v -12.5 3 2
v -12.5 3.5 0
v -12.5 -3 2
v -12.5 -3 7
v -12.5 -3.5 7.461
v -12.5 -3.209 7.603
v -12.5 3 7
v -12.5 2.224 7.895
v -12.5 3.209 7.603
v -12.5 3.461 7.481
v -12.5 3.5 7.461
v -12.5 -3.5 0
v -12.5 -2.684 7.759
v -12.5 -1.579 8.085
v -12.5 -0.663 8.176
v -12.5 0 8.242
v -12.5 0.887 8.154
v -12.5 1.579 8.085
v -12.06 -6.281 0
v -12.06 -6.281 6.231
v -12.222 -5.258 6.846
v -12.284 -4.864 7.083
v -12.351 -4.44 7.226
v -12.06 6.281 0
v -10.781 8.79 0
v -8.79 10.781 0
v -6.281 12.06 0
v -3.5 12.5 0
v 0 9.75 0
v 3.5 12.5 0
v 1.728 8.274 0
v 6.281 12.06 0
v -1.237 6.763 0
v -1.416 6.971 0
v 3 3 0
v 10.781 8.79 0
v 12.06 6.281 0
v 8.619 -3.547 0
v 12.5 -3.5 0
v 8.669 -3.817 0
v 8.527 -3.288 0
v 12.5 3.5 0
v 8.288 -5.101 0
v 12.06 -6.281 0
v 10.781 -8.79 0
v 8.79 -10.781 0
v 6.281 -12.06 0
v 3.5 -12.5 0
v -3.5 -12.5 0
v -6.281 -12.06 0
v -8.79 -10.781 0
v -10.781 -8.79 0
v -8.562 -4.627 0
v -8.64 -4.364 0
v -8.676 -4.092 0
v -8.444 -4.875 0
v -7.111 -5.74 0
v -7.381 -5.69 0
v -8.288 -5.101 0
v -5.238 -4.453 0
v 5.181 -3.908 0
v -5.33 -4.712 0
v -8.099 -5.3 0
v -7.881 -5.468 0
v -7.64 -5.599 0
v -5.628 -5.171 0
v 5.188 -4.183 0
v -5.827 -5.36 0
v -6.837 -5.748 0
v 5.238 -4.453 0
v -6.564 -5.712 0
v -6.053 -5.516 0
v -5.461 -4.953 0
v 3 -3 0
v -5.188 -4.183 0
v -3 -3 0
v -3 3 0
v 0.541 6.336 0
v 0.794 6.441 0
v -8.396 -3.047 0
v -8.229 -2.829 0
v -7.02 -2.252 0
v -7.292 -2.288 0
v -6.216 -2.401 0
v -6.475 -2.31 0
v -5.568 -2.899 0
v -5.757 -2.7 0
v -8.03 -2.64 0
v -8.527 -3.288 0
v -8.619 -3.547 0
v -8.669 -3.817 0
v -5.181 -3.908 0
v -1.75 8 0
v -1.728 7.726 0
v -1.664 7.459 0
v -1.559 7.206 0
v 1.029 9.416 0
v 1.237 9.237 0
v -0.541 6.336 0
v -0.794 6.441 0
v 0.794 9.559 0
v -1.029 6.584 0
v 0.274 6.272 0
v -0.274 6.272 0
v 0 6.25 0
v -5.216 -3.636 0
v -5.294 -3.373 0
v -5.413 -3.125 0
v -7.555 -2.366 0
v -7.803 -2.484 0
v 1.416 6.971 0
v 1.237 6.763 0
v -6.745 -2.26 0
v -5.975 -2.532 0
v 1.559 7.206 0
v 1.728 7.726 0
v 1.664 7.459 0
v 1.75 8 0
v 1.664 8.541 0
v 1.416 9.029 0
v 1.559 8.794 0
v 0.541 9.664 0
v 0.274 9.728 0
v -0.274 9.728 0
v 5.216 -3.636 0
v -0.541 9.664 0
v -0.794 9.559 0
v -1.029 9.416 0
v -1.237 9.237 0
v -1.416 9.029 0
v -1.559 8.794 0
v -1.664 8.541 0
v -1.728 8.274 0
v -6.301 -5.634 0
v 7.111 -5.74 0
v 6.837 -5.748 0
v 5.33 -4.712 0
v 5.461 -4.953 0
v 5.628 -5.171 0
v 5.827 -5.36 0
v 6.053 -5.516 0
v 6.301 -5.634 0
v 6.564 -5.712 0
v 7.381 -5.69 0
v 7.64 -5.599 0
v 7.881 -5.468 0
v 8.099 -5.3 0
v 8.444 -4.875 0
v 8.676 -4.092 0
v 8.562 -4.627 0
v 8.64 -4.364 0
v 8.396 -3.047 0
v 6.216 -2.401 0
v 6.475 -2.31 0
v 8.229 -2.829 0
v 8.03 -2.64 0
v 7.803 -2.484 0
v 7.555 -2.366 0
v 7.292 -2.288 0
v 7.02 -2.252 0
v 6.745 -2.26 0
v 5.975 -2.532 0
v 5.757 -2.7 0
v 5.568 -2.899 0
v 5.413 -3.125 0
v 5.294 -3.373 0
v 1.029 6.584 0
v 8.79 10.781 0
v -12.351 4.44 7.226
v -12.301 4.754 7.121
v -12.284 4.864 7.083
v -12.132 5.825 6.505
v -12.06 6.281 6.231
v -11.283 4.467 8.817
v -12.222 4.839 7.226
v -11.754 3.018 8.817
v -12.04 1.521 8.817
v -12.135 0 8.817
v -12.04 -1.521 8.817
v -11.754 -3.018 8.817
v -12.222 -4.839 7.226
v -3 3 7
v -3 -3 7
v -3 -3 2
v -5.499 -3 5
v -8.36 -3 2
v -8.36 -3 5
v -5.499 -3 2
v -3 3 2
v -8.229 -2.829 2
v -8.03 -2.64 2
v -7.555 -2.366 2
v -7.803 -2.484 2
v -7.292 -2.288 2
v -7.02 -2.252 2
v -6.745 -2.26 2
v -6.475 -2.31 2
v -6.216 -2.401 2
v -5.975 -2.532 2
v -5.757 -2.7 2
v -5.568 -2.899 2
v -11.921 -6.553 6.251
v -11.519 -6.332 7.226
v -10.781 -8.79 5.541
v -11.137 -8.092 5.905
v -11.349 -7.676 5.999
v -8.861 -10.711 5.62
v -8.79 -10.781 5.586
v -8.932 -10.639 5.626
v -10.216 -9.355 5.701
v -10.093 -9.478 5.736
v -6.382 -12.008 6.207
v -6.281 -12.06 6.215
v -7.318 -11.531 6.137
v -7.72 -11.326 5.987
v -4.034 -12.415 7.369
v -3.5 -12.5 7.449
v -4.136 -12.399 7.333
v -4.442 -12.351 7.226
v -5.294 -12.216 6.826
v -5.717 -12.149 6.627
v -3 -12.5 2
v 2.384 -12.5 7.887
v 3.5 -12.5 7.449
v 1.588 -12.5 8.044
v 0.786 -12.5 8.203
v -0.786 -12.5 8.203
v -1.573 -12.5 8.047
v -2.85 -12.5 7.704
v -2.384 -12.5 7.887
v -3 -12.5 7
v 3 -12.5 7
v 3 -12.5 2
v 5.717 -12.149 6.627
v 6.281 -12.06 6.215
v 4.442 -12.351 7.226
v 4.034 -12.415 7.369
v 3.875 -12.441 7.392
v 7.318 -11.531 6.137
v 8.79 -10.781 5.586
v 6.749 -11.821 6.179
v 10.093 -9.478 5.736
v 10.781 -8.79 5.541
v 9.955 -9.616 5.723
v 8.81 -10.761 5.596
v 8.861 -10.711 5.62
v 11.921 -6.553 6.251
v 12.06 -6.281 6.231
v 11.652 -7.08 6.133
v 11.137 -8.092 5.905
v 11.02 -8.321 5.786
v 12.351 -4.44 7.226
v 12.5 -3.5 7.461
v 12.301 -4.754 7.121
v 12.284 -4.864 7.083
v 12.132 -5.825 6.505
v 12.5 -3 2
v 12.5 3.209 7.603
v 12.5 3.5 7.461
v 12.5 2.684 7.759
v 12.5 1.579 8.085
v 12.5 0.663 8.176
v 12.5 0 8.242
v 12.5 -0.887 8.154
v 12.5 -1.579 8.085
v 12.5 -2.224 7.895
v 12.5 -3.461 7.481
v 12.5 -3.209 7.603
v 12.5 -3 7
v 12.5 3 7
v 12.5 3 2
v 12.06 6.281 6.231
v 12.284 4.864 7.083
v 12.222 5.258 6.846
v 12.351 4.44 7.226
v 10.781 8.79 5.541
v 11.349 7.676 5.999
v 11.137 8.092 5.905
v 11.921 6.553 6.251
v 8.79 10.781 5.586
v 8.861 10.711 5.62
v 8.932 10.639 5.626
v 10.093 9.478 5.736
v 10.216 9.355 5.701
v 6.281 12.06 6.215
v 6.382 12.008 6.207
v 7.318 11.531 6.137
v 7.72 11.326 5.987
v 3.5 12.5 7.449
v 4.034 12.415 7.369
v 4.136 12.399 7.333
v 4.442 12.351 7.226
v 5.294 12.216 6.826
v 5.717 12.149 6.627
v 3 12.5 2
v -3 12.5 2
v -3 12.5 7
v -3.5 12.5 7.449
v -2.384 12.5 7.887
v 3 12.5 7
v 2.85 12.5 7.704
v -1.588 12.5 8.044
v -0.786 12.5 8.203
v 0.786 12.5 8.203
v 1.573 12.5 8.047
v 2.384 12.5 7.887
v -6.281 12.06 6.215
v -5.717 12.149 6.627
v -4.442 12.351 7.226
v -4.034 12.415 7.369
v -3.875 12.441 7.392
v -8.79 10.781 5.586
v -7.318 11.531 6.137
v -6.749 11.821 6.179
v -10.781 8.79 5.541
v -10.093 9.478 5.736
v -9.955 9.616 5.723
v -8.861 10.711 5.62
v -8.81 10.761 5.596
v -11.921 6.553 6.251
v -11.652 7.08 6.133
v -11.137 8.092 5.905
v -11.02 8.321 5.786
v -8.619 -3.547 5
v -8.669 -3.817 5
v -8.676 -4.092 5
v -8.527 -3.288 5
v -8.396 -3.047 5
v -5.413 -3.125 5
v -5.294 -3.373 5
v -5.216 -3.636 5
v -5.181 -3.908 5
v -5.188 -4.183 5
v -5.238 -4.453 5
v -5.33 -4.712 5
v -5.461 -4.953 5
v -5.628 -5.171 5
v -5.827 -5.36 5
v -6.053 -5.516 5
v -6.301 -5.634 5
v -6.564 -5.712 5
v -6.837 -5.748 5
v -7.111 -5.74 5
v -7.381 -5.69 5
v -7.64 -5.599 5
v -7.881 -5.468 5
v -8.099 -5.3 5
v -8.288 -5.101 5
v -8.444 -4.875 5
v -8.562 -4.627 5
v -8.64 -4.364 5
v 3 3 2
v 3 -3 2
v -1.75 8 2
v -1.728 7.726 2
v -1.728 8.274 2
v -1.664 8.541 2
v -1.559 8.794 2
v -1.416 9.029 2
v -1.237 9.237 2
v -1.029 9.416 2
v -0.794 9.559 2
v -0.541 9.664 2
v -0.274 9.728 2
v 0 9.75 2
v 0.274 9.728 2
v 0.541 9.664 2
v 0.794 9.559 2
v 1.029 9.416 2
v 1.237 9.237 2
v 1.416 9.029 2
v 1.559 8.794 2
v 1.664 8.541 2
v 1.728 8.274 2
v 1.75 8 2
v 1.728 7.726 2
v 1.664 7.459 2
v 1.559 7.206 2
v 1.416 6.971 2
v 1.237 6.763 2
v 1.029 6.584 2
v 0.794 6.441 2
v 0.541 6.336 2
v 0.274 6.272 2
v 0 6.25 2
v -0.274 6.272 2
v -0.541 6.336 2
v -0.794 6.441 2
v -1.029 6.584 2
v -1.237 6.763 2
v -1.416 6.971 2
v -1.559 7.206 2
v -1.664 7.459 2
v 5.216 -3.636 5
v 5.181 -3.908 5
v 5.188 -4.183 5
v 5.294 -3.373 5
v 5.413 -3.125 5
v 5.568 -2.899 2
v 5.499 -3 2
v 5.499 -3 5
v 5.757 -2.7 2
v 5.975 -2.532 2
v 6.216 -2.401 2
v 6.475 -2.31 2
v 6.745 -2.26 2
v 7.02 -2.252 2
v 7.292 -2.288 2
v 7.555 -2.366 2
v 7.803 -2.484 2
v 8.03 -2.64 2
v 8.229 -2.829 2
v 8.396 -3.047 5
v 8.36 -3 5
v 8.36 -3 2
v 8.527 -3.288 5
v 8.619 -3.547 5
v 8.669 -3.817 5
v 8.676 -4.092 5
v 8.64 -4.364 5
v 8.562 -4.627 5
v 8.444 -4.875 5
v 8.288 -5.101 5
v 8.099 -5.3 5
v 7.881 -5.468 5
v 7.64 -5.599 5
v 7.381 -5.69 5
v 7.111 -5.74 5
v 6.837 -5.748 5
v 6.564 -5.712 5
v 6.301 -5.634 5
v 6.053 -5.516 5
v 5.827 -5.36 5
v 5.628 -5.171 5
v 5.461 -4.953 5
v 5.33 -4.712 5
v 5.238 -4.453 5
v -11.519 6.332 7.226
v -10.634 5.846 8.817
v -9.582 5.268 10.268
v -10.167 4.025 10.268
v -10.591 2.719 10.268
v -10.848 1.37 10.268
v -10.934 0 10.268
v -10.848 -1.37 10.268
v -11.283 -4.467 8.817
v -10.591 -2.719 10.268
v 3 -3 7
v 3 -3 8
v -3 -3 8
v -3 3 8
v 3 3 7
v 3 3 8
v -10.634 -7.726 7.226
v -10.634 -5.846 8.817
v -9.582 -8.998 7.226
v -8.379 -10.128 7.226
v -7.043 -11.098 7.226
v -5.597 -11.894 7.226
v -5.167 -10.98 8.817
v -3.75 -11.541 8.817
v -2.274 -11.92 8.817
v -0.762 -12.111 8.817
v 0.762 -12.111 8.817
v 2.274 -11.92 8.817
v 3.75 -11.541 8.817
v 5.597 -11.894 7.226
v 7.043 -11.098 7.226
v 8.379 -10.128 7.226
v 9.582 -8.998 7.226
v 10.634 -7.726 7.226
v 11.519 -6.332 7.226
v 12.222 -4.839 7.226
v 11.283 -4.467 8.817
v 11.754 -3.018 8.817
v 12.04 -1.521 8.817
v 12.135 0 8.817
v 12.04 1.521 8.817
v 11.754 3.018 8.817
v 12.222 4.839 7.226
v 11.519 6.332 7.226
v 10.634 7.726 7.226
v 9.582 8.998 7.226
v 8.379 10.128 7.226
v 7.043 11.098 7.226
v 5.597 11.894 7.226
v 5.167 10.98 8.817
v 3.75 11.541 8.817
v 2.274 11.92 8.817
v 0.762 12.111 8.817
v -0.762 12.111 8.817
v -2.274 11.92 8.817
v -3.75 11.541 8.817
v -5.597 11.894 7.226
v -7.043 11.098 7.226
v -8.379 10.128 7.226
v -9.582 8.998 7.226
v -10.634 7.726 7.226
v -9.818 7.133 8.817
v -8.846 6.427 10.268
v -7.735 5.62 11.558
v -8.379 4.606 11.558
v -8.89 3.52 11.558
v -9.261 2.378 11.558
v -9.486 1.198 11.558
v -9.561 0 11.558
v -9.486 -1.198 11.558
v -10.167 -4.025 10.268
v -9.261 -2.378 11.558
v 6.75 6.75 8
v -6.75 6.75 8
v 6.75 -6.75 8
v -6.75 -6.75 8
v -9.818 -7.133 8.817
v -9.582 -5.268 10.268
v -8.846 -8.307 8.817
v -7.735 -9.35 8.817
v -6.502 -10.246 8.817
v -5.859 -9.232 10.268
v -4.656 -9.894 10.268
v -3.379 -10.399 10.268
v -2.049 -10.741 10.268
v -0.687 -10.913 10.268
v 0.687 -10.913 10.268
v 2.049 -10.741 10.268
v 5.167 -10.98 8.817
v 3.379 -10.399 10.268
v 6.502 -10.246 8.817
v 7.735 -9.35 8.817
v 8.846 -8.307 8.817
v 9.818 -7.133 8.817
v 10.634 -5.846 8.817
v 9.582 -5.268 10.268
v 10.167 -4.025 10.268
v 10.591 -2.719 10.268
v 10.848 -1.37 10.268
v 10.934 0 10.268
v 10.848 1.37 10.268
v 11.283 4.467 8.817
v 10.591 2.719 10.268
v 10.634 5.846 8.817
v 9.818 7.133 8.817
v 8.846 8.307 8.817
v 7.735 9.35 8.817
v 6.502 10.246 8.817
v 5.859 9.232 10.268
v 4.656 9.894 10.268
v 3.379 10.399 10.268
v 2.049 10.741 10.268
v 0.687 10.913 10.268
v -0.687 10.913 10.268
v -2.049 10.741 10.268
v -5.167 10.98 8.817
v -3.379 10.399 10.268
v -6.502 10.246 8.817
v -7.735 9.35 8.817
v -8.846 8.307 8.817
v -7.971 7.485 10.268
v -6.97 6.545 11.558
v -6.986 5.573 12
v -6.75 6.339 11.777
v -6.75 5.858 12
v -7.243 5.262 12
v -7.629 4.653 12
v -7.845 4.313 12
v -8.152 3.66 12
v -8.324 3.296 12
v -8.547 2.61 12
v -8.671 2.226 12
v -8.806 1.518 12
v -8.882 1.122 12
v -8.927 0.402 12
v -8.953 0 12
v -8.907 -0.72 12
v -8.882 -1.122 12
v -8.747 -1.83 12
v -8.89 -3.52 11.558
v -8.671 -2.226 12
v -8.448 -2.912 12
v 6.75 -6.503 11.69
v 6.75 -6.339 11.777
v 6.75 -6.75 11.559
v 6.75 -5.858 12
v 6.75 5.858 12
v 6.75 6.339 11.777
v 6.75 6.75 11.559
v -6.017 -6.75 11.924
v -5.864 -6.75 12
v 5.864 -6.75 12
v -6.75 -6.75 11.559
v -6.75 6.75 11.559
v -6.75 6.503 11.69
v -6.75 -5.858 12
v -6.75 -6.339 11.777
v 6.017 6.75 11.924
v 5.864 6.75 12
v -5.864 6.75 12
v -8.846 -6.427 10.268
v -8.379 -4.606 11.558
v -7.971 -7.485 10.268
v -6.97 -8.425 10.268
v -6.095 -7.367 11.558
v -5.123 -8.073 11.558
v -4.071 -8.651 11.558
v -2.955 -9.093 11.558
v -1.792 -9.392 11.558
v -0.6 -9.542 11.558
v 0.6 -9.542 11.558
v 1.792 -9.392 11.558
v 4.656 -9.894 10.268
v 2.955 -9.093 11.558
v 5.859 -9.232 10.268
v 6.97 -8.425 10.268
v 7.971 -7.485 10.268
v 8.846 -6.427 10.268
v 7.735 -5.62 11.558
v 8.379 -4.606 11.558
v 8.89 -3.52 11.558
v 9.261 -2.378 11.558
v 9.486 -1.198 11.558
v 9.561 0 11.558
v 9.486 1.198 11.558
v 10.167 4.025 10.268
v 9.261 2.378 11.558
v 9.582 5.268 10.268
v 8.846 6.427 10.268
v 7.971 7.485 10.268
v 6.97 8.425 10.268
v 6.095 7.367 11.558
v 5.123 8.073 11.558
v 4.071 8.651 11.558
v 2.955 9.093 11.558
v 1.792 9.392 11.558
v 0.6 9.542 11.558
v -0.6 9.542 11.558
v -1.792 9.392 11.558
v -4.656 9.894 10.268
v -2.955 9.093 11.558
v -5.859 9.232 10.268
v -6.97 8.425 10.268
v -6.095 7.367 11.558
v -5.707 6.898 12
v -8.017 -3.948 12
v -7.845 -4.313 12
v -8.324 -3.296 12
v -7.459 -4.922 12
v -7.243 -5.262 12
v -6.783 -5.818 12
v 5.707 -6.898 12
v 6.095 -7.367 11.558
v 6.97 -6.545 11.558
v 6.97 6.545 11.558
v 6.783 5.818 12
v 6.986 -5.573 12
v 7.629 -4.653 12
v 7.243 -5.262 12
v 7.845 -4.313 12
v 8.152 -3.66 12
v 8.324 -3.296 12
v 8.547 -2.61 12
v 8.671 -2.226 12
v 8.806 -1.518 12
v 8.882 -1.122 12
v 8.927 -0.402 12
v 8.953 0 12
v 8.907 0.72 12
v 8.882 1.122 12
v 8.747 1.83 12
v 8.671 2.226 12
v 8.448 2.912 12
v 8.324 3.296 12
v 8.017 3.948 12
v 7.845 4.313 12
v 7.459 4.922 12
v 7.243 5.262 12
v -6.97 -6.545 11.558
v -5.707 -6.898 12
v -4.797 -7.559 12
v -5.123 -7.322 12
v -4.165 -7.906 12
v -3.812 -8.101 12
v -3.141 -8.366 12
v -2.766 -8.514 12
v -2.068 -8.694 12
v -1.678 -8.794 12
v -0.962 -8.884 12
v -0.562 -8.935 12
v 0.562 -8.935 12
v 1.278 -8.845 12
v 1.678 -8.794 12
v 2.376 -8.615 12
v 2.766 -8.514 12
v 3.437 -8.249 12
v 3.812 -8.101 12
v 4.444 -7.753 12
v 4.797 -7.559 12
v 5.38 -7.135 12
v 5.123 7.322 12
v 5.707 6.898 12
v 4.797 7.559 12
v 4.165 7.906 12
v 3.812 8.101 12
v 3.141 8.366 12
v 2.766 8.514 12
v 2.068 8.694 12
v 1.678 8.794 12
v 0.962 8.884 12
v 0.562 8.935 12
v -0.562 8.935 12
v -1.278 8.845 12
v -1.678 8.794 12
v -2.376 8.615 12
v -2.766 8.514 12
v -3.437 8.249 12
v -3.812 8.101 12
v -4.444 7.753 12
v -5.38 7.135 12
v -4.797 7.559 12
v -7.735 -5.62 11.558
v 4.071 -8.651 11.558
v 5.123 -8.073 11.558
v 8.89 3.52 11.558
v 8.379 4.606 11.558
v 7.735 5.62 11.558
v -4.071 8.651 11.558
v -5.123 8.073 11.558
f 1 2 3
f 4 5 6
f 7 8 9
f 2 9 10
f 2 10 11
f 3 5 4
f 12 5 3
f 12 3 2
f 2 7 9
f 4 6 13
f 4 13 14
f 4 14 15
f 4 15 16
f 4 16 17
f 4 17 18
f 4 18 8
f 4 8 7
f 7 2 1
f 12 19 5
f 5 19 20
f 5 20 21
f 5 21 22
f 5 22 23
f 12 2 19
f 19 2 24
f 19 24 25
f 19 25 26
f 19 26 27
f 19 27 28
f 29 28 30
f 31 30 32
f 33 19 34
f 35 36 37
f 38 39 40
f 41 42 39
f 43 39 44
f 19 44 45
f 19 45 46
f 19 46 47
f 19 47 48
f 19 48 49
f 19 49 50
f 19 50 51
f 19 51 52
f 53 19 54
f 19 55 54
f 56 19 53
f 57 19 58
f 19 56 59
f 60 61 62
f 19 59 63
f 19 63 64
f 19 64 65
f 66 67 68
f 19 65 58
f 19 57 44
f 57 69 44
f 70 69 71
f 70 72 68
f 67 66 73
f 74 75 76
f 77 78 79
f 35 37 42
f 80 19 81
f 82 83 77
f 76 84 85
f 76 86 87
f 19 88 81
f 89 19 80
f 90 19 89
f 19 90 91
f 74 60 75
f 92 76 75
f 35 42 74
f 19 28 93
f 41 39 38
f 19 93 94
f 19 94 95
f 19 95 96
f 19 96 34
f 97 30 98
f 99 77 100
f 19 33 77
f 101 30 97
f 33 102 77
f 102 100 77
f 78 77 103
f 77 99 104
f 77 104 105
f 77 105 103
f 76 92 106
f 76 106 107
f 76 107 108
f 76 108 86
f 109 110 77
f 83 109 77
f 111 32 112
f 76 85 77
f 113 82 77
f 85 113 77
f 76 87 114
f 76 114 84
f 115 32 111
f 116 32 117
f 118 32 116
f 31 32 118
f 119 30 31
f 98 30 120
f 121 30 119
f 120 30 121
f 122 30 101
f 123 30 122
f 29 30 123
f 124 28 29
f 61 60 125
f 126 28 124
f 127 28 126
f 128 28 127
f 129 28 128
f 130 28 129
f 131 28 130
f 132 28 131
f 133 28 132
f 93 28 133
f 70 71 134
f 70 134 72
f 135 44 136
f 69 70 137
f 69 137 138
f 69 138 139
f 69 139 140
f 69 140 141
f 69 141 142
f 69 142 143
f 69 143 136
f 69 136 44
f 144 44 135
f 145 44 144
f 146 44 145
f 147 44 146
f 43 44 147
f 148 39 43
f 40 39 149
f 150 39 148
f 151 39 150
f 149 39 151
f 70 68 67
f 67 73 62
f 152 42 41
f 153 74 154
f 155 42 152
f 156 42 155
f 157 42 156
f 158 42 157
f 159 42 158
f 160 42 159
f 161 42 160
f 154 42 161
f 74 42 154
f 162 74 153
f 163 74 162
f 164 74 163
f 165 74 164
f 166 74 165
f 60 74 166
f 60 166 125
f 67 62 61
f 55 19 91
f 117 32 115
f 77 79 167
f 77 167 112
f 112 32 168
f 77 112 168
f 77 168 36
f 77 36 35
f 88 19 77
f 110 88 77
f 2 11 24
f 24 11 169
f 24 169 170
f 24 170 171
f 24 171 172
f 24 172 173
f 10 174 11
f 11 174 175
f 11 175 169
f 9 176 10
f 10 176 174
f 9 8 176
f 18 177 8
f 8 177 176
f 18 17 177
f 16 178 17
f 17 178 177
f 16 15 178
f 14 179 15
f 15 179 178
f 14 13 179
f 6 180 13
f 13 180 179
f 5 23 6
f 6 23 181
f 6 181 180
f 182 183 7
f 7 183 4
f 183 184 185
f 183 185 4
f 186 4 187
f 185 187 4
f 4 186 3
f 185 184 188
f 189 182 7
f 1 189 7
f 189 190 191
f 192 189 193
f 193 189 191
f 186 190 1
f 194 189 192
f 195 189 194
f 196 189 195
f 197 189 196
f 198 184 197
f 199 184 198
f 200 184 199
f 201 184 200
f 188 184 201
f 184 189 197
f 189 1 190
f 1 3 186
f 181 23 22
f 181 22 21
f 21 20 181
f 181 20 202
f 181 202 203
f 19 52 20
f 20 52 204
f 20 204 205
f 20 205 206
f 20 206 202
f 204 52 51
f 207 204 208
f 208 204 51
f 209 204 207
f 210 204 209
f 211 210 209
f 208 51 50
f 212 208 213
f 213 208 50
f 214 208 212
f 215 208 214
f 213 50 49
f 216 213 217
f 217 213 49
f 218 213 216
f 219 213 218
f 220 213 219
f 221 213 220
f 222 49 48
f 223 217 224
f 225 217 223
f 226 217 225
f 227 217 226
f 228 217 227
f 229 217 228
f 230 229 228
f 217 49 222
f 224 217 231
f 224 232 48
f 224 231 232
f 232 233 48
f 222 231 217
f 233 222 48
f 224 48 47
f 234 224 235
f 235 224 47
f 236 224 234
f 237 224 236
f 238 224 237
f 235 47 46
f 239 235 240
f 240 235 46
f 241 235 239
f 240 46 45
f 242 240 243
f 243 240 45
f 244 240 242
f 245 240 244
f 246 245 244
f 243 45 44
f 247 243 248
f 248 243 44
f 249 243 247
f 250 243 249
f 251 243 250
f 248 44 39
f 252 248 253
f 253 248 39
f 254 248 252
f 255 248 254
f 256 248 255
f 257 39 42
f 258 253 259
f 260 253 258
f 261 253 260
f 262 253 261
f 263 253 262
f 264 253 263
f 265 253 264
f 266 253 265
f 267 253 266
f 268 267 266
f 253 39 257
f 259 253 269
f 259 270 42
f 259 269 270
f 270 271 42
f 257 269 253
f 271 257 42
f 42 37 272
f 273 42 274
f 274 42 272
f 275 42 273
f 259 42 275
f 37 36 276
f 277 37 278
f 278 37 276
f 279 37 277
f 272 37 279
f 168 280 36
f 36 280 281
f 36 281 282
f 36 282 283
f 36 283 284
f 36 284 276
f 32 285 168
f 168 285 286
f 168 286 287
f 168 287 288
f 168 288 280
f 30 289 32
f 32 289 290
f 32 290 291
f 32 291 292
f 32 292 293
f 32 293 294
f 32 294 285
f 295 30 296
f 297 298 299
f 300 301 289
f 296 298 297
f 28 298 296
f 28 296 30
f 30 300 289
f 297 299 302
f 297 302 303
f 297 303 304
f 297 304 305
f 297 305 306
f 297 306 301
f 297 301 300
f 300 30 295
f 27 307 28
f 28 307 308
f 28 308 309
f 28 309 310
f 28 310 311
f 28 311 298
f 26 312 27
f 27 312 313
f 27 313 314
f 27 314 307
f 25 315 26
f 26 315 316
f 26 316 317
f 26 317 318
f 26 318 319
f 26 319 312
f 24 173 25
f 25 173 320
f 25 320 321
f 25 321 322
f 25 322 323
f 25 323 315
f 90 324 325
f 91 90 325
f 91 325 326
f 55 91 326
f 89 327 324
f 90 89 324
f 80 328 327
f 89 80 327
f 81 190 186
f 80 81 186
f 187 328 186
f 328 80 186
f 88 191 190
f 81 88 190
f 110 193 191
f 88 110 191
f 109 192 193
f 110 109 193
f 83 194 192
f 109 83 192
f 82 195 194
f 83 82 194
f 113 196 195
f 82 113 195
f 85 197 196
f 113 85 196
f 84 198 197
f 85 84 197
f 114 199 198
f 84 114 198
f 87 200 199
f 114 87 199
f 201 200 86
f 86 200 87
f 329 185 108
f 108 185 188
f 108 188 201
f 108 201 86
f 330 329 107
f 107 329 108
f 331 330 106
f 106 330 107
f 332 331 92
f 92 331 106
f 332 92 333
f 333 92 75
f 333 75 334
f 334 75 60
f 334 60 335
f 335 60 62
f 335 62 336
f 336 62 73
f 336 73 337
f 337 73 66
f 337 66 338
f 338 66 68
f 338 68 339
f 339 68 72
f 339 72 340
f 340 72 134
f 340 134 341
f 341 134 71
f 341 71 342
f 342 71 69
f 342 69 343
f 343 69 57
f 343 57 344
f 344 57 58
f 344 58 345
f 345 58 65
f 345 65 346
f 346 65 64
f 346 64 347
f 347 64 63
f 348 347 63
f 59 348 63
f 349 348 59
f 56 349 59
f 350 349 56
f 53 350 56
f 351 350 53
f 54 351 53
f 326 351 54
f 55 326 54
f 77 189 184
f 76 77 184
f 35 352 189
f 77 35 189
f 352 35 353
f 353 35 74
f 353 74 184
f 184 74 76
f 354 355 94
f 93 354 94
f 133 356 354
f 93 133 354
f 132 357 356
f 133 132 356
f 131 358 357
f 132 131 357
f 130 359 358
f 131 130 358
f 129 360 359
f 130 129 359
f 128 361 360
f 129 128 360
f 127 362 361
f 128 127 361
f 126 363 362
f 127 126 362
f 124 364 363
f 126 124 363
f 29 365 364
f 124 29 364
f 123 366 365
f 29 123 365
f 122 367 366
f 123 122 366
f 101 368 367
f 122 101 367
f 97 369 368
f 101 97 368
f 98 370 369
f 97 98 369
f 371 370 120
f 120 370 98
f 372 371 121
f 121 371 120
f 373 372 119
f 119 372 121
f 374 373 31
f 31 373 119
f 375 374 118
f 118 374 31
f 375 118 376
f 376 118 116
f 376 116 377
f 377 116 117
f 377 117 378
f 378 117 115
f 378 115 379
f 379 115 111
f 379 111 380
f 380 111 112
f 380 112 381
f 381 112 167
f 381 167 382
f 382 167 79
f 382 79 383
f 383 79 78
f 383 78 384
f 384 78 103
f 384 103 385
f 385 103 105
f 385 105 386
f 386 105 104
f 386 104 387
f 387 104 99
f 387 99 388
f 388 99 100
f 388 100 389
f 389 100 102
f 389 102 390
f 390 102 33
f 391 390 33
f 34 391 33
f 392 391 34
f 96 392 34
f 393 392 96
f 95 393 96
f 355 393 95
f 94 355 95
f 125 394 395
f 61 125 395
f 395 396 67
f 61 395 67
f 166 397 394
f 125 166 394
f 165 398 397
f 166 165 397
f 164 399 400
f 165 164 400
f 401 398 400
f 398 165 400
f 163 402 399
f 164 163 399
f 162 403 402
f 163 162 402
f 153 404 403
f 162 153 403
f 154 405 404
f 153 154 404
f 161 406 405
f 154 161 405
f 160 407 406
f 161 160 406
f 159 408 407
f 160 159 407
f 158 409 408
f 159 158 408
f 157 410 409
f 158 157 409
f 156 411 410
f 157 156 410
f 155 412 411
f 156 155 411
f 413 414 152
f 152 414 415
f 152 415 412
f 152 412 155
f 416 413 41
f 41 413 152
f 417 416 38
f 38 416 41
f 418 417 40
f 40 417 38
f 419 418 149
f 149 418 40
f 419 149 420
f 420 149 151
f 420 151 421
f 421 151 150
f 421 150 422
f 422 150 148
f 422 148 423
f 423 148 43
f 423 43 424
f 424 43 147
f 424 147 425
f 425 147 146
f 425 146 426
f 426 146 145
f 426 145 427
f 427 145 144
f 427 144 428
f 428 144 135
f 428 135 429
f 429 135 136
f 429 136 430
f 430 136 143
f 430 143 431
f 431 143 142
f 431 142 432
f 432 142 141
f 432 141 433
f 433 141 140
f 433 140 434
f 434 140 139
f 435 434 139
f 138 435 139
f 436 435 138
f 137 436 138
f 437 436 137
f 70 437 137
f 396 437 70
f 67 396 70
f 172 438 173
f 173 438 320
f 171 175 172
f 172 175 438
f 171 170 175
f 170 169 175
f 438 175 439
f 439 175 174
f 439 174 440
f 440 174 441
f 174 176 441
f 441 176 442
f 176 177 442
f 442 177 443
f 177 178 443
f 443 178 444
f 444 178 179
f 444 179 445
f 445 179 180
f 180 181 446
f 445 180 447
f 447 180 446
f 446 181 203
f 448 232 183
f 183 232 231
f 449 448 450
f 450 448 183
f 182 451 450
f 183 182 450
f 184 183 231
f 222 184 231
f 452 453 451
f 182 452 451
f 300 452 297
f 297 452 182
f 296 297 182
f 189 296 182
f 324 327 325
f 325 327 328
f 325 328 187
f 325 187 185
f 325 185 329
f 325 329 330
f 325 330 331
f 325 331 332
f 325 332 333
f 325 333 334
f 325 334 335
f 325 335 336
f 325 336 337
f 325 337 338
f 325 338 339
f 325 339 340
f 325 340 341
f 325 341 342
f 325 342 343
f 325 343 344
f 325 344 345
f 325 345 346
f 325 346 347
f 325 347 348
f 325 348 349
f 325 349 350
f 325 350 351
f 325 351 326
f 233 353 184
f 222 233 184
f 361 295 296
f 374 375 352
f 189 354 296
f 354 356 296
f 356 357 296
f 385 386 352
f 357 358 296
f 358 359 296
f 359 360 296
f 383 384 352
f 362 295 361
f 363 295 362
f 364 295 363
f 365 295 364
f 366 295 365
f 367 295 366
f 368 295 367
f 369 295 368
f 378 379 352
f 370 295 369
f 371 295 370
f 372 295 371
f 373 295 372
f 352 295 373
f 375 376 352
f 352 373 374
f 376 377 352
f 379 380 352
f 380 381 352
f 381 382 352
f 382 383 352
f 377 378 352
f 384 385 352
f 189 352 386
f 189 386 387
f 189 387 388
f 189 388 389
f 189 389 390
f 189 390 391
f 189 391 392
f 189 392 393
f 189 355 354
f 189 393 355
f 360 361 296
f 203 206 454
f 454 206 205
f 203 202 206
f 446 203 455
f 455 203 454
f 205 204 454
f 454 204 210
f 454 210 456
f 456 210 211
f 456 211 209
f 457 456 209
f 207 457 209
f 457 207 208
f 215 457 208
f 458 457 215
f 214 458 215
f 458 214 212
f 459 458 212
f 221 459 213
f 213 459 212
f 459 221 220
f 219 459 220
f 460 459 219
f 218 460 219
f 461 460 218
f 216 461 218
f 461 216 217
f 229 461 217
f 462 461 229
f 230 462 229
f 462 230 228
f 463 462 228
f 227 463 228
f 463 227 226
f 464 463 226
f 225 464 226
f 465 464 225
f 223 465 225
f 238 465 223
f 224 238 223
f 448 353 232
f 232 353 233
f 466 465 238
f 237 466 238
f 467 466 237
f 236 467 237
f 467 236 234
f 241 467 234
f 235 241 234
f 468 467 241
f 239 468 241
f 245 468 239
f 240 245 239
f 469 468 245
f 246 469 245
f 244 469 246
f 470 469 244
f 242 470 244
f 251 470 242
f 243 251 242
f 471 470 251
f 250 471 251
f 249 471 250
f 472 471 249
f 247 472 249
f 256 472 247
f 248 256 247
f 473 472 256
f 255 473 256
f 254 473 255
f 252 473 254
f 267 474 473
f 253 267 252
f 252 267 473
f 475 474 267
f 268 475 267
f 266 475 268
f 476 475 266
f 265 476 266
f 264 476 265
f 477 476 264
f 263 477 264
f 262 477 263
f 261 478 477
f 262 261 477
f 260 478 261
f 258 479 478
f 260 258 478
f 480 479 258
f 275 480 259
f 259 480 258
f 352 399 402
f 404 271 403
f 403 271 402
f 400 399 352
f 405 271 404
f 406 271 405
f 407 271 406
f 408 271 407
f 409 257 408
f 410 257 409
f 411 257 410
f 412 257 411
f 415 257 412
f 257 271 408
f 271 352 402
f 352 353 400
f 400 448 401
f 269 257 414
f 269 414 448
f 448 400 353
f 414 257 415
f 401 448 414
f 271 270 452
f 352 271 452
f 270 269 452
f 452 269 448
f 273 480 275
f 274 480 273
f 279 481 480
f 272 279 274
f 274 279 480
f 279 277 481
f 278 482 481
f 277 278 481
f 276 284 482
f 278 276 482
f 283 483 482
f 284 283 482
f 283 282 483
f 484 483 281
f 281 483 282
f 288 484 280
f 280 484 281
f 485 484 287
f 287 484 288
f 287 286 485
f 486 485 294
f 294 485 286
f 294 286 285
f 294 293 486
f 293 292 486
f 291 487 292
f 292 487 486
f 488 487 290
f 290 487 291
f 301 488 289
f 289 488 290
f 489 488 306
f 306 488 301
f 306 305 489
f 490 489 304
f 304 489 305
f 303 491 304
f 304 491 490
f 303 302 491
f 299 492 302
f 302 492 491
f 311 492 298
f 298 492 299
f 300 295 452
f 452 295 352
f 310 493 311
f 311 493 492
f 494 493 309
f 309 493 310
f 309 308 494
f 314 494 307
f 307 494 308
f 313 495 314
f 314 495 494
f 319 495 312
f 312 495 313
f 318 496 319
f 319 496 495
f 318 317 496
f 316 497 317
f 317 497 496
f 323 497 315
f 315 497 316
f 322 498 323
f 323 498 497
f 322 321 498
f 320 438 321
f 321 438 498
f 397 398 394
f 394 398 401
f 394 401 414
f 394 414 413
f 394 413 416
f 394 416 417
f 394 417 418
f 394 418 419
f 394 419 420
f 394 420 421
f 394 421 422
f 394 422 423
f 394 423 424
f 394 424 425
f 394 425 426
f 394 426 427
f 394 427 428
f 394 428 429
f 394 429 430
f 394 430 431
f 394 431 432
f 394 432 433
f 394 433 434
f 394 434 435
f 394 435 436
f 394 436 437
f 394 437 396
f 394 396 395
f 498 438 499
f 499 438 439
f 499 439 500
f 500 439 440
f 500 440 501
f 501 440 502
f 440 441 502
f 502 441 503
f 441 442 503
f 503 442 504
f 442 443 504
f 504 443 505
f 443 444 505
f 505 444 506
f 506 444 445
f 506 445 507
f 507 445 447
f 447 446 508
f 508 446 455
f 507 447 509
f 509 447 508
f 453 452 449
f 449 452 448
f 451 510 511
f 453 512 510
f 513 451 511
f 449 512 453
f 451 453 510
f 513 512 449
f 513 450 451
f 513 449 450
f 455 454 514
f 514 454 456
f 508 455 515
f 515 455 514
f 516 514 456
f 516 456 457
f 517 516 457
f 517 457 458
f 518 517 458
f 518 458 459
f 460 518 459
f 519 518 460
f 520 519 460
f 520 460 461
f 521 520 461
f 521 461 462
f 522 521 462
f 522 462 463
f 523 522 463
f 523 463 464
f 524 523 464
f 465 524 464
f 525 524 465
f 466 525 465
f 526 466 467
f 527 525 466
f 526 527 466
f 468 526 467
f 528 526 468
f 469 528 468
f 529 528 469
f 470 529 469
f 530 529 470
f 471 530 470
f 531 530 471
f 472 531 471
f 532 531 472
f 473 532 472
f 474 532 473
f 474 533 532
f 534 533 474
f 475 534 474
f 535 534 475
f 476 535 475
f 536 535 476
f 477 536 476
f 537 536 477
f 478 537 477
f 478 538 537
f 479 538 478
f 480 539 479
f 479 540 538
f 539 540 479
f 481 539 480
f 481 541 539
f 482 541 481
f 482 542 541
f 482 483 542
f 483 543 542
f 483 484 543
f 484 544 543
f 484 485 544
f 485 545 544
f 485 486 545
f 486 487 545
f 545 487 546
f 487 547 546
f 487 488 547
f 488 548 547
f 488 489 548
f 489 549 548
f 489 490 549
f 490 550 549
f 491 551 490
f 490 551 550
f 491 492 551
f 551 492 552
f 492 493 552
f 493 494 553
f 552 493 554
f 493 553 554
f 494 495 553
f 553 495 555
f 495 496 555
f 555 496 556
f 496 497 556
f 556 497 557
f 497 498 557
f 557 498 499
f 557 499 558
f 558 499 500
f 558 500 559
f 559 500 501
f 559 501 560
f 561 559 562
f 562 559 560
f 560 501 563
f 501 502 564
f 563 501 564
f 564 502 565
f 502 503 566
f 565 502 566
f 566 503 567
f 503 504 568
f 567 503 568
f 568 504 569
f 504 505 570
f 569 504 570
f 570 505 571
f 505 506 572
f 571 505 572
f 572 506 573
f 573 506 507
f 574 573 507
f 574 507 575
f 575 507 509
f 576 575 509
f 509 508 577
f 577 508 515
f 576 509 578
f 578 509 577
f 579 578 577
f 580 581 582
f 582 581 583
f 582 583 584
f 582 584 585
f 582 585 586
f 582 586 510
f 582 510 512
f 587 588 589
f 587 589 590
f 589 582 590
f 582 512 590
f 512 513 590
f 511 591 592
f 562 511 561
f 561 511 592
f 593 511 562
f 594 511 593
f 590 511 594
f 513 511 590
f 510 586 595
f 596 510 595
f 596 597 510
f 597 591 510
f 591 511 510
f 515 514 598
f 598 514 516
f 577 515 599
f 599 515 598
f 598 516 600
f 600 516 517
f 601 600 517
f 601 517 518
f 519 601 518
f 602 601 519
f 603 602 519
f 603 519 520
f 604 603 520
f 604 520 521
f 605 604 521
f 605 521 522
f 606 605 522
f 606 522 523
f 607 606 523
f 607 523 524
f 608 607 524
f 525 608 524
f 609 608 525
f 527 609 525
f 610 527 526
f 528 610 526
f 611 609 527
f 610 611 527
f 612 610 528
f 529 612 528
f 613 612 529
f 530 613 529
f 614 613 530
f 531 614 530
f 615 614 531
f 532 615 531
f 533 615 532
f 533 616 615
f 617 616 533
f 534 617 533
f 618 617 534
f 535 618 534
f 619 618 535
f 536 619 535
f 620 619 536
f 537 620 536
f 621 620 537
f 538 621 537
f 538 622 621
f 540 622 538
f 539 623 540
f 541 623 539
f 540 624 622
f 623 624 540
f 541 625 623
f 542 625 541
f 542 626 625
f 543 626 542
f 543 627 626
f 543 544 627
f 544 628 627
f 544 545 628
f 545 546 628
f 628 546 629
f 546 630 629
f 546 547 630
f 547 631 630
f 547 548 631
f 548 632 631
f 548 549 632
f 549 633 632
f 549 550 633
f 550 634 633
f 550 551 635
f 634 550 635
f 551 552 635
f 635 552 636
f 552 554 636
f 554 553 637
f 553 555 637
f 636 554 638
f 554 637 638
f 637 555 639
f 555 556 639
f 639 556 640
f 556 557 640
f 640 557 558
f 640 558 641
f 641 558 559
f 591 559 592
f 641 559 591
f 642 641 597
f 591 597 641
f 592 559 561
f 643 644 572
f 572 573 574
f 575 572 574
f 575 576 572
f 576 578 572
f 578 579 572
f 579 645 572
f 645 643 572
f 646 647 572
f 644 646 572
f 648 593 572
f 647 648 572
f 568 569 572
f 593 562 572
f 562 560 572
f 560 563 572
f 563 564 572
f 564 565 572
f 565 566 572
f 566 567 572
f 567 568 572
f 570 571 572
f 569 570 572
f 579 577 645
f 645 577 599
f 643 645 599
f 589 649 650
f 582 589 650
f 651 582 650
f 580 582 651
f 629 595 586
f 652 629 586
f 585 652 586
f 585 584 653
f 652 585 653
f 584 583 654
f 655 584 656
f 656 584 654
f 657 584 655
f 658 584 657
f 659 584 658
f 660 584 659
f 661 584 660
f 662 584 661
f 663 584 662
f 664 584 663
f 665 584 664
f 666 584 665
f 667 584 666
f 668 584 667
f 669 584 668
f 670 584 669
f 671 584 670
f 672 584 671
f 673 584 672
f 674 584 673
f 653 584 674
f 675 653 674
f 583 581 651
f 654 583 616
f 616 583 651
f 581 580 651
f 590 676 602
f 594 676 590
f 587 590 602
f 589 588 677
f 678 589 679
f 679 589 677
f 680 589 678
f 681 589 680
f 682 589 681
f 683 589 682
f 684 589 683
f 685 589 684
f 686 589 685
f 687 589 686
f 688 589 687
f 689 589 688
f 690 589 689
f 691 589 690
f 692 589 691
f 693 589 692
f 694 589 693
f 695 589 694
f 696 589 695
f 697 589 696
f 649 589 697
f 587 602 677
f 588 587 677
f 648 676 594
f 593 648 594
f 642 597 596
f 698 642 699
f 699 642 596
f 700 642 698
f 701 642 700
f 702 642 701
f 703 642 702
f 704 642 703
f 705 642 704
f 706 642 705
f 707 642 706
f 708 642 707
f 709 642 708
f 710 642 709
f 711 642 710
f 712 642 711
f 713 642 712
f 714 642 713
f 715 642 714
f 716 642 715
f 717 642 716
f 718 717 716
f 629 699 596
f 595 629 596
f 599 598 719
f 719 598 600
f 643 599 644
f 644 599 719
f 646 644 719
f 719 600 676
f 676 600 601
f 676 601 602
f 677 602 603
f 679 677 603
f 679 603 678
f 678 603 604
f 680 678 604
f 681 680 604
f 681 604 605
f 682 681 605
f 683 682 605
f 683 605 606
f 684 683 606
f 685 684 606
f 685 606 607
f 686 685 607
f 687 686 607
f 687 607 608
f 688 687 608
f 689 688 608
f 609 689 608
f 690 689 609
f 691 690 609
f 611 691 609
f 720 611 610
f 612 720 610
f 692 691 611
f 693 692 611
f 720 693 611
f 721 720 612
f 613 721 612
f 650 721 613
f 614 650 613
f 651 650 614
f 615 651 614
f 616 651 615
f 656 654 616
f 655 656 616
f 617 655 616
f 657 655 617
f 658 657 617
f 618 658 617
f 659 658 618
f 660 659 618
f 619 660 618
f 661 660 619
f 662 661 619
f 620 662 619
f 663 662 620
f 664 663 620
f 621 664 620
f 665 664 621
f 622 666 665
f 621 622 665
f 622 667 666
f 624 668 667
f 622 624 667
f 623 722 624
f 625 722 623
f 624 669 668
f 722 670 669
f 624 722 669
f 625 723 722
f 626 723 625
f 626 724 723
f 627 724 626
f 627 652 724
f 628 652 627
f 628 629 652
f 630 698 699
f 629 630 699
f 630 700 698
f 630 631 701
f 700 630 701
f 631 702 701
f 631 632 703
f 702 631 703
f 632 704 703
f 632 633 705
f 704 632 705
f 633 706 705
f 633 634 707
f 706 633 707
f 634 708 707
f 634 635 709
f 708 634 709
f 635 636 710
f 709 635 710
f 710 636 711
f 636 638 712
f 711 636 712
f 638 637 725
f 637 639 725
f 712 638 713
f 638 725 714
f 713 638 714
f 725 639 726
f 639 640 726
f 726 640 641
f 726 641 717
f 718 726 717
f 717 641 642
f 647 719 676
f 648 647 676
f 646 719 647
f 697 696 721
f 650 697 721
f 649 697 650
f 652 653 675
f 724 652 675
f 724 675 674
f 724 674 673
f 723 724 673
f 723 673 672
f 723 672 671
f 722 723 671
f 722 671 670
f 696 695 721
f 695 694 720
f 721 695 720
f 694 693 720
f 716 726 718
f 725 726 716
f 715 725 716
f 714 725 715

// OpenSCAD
// Vector-9000 - fast line follower robot (version 1.0)
// by Carlosgs (http://carlosgs.es) and Víctor Uceda
// CC-BY-SA license (http://creativecommons.org/licenses/by-sa/3.0/)
// Check http://www.thingiverse.com/thing:65012 for more information

resolucion_taladros = 40;
diametro_taladros = 3.5;

anchoLDR = 6;
altoLDR = 5;

alturaPieza = 12;

intersection() {
difference() {

//cylinder(r=25/2,h=alturaPieza,$fn=50);
translate([0,0,alturaPieza/2])
  roundedRect2D([25,25,alturaPieza], 9);

//cylinder(r=8/2,h=200,center=true,$fn=resolucion_taladros);
cube([anchoLDR,anchoLDR,100],center=true);

for (i = [0:2])
  rotate([0,0,i*360/3+90]) translate([8,0,0])
	cylinder(r=diametro_taladros/2,h=10,center=true,$fn=resolucion_taladros);

translate([0,0,alturaPieza])
  cube([13.5,13.5,4*2],center=true);

translate([0,0,2+altoLDR/2]) {
  cube([anchoLDR,100,altoLDR],center=true);
  cube([100,anchoLDR,altoLDR],center=true);
}


}

sphere(r=15,$fn=50);

}//intersection

// http://www.thingiverse.com/thing:9347
module roundedRect2D(size, radius)
{
$fn=20;
x = size[0]-radius*2;
y = size[1]-radius*2;
z = size[2];

minkowski()
{
cube(size=[x,y,z],center=true);
cylinder(r=radius,h=0.00001);
}
}
